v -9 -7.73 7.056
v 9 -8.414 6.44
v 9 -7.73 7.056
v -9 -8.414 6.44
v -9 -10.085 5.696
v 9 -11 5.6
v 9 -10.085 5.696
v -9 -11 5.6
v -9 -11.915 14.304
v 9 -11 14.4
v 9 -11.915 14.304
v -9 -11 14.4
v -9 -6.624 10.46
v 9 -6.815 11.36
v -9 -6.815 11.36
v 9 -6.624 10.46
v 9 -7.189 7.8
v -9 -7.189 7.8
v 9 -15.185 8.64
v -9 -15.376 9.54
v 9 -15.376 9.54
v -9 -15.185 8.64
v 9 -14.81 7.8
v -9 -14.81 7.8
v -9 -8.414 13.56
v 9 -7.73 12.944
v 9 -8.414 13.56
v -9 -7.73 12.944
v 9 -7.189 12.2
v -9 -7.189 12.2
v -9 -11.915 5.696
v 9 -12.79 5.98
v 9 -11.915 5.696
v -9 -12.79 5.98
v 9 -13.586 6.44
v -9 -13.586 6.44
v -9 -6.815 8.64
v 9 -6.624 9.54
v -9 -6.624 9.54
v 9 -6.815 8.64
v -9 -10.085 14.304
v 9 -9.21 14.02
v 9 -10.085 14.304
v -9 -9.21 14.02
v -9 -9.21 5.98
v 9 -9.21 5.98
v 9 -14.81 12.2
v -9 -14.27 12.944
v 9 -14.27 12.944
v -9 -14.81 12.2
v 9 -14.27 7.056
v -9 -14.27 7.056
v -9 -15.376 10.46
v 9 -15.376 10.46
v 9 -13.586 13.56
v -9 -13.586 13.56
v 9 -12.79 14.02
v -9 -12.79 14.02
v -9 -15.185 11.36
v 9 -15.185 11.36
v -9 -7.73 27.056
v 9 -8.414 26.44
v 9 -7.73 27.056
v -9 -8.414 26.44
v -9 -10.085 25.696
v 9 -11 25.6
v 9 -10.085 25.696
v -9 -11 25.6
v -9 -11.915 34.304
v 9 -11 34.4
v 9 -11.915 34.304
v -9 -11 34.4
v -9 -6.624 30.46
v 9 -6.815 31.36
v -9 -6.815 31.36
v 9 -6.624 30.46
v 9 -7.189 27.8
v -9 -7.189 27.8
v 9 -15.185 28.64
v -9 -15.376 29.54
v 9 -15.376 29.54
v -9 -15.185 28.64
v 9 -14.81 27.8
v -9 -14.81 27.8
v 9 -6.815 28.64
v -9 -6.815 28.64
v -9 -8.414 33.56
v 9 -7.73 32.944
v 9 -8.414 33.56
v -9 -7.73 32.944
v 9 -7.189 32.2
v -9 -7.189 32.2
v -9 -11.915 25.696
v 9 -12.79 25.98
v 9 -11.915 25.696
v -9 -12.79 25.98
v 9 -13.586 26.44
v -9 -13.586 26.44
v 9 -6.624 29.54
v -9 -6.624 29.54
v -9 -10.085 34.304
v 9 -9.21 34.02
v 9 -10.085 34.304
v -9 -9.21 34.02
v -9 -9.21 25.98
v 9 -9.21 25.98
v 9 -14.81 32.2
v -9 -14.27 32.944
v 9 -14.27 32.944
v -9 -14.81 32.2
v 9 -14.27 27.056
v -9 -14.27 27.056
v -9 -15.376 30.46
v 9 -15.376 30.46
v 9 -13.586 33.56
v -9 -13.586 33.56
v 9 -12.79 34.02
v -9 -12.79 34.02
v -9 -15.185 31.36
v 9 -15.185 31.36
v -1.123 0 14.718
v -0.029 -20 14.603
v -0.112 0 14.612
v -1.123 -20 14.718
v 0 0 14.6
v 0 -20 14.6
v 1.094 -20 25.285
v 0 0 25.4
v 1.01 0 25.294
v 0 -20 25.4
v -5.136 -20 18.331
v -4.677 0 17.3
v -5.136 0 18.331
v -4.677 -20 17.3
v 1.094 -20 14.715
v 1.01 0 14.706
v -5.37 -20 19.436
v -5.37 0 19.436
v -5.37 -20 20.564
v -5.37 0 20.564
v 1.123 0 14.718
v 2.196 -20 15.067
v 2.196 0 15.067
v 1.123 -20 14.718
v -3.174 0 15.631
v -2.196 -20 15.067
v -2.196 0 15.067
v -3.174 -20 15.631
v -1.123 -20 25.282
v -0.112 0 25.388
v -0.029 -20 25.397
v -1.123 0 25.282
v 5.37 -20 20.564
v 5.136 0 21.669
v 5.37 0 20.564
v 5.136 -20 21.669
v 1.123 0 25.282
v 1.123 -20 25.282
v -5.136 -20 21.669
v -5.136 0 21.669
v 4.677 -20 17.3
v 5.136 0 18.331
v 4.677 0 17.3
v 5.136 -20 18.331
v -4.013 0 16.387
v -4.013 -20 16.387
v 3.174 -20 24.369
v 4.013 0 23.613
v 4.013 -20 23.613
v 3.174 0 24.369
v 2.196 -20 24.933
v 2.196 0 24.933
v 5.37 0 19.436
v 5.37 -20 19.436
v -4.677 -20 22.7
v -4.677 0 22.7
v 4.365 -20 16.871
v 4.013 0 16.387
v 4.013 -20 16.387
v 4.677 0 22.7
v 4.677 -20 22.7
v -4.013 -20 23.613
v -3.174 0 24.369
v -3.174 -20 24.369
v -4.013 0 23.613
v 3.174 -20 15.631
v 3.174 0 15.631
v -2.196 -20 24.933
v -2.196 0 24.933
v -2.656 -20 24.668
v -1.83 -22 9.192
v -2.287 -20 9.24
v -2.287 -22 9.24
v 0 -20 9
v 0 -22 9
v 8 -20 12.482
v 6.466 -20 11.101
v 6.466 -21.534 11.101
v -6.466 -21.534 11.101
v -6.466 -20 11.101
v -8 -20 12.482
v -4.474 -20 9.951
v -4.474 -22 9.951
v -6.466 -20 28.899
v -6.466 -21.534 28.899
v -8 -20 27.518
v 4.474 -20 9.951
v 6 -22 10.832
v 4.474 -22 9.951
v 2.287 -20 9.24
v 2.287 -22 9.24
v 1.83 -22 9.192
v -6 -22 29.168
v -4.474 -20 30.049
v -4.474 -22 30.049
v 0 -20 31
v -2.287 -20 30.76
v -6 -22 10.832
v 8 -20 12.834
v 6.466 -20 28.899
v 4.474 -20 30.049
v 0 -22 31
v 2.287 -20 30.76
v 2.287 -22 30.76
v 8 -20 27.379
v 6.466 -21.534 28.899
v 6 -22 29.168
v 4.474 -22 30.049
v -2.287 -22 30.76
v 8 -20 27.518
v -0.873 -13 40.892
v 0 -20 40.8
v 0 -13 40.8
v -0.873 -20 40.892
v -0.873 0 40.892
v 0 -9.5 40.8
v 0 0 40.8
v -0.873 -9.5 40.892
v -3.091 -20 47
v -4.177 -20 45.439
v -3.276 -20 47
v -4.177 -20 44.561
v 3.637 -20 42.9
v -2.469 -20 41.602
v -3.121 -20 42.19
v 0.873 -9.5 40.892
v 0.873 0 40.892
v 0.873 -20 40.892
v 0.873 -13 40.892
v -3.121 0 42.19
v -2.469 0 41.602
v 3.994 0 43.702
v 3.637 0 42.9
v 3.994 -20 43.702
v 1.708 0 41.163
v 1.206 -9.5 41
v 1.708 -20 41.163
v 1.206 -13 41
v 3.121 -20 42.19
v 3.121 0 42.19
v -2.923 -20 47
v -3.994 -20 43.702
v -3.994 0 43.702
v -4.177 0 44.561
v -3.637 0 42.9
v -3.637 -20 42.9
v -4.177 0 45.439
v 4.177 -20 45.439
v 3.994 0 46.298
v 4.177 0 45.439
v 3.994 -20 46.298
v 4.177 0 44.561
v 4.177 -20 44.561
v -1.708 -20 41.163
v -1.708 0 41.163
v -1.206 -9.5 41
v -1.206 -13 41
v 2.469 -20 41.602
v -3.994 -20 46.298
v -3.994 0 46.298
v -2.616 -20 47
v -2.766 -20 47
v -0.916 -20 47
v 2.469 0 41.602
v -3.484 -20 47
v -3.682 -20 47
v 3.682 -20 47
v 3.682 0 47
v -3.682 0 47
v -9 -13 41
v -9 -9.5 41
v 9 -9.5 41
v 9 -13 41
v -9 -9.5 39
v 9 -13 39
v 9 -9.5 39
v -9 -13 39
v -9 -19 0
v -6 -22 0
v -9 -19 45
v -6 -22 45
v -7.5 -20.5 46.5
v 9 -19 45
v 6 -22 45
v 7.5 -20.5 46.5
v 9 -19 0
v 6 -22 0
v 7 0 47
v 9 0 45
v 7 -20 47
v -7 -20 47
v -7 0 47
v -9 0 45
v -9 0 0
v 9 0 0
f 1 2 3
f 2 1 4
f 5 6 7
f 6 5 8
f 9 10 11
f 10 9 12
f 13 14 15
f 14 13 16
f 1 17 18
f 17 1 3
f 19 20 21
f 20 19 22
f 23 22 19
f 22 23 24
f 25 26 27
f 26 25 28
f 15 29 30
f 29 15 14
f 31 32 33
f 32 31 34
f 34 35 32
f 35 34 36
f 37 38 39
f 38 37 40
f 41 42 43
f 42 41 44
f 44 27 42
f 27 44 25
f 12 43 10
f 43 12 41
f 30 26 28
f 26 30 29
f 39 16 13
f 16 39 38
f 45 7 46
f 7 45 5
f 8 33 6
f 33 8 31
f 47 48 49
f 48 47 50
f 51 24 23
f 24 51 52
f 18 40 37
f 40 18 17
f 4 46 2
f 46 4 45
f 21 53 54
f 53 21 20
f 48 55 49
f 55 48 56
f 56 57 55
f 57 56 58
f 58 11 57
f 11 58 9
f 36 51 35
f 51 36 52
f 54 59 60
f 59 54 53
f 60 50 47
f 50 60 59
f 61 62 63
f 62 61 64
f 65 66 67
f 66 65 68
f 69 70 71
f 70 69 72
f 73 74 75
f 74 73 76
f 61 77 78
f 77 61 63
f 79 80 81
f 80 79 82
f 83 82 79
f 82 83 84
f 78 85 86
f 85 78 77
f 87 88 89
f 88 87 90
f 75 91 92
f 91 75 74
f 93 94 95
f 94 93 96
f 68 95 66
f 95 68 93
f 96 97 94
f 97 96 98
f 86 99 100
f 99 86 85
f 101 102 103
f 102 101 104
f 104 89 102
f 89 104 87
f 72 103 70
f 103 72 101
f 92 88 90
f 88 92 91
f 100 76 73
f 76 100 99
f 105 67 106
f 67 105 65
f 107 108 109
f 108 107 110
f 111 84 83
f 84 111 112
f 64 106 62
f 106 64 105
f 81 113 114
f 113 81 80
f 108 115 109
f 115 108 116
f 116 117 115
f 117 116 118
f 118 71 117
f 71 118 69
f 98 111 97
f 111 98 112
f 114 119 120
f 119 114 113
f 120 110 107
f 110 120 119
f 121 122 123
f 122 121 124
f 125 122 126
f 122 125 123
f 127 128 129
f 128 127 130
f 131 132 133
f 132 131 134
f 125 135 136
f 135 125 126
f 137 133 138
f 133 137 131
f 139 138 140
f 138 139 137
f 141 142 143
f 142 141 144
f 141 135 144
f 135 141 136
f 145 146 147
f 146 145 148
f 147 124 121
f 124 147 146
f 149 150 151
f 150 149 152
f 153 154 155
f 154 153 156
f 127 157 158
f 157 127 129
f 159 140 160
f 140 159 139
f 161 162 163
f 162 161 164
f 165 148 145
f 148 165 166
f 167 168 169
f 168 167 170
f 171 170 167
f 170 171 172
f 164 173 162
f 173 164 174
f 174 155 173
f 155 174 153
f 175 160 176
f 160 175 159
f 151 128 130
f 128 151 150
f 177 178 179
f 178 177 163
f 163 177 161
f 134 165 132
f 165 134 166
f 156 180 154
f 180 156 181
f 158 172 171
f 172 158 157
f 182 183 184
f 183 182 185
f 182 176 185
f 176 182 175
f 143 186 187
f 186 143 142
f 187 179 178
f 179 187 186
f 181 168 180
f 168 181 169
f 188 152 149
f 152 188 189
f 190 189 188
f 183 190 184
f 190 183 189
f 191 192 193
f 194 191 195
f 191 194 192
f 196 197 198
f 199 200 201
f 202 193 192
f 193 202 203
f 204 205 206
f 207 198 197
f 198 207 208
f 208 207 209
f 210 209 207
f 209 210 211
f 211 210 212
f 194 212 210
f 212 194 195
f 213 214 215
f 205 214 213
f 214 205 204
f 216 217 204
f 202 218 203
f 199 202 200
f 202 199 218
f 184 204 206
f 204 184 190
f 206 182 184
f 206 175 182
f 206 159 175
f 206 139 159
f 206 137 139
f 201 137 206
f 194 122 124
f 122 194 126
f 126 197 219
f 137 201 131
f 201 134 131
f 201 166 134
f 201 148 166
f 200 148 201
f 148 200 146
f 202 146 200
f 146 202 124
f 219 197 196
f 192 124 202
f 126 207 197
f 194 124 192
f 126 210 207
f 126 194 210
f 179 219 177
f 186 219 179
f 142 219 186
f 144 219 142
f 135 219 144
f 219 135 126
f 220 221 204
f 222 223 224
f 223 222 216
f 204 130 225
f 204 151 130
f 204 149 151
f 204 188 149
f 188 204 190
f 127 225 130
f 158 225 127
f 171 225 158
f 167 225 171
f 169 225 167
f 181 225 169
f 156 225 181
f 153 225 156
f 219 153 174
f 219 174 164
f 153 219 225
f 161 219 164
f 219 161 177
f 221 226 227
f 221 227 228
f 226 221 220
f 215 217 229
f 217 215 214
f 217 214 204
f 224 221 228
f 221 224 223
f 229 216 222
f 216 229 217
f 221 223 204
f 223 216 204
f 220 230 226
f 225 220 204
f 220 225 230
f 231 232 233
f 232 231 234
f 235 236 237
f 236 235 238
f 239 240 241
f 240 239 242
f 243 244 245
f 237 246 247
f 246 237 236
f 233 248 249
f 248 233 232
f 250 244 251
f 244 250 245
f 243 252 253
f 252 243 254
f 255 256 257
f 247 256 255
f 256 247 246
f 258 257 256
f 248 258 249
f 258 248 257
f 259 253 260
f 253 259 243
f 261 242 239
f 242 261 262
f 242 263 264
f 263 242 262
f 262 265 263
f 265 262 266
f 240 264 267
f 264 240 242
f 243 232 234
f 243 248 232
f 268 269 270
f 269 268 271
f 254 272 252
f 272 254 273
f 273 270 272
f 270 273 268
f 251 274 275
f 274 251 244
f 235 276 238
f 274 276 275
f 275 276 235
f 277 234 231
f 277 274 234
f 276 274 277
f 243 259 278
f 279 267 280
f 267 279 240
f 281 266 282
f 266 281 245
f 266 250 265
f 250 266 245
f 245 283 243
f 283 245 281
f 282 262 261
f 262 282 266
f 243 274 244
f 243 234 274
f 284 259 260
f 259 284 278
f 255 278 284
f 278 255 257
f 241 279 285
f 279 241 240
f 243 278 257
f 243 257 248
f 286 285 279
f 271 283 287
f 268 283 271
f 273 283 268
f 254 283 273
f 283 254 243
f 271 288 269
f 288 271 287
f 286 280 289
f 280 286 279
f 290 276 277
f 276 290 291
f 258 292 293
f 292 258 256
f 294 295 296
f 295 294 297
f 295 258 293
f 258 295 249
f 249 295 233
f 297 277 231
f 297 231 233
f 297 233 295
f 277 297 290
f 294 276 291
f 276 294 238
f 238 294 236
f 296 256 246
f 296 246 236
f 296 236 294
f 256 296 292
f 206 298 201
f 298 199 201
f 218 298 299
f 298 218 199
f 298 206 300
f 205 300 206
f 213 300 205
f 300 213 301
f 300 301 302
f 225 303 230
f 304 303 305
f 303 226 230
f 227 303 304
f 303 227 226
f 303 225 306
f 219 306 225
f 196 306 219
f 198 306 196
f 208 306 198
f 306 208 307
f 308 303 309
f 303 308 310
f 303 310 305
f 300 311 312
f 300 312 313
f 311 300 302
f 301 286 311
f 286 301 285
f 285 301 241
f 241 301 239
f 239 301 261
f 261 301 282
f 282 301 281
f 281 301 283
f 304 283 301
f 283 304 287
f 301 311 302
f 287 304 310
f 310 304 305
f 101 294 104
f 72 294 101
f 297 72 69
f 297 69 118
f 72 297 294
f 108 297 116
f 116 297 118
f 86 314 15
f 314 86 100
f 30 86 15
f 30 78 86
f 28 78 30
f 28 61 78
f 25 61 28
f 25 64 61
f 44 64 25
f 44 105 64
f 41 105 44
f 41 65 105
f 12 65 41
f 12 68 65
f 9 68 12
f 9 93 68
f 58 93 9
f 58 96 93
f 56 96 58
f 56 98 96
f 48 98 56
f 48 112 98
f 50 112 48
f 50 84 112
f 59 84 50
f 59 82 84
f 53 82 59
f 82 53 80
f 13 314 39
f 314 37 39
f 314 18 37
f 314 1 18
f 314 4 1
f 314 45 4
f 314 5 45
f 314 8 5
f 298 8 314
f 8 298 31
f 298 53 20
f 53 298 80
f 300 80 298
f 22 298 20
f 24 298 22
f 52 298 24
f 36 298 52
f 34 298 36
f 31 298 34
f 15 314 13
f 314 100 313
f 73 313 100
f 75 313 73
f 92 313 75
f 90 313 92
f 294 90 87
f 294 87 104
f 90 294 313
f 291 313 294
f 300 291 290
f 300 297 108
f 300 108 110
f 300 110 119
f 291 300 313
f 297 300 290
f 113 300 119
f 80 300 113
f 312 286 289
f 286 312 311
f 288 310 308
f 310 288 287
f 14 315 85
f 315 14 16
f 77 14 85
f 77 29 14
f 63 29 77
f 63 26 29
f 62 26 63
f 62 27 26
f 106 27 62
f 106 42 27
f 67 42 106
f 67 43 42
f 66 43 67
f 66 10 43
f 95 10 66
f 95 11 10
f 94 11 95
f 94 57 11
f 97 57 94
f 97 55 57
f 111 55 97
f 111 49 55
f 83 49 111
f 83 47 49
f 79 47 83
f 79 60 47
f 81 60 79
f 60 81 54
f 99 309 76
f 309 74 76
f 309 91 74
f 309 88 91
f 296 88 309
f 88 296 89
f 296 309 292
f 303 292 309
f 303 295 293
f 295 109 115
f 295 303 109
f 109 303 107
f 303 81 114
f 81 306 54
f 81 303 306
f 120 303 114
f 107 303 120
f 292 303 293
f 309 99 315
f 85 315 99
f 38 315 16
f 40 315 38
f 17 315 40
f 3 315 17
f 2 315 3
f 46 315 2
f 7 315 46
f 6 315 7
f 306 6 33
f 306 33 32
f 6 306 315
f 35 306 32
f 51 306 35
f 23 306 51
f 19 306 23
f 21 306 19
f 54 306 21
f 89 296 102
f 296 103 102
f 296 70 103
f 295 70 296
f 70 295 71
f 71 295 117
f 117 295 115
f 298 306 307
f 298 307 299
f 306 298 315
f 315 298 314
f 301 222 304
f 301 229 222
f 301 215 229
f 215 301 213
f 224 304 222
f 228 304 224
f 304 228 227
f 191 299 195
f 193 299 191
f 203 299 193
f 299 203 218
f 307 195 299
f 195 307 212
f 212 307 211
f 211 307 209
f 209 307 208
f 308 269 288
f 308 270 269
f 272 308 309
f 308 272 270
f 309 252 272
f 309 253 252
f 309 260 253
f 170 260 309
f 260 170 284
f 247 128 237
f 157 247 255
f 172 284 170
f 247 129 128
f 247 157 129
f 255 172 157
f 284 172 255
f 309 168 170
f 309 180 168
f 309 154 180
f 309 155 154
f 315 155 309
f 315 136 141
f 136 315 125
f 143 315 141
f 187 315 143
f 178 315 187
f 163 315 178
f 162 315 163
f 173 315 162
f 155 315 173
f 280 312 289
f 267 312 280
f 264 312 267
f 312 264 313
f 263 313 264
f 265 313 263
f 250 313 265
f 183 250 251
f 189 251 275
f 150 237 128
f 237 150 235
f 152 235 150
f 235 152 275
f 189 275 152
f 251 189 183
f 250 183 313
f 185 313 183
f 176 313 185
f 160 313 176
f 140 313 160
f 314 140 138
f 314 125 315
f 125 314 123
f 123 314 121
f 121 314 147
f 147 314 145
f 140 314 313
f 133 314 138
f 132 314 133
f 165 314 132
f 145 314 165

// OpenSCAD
// PRUSA iteration3
// Y frame corners
// GNU GPL v3
// Josef Průša <iam@josefprusa.cz> and contributors
// http://www.reprap.org/wiki/Prusa_Mendel
// http://prusamendel.org


module corner_base(){	
 translate([-9,-11,0])cube([18,22,47]);
}

module corner_holes(){
 translate([-11,-11,0]){
  // Bottom hole
  translate([0,11,10]) rotate([0,90,0]) translate([0,0,-5]) cylinder(h = 270, r=4.4, $fn=30);
  // Top hole
  translate([0,11,30]) rotate([0,90,0]) translate([0,0,-5]) cylinder(h = 270, r=4.4, $fn=30);
  // Middle hole
  translate([11,0,20]) rotate([0,0,90]) rotate([0,90,0]) translate([0,0,-5]) cylinder(h = 270, r=5.4, $fn=30);

  // Washer hole
  translate([11,-3,20]) rotate([0,0,90]) rotate([0,90,0]) translate([0,0,-5]) cylinder(h = 10, r=11, $fn=30);

  // Top smooth rod insert
  // Smooth rod place
  translate([11,2,45]) rotate([0,90,90]) cylinder(h = 270, r=4.2, $fn=30); 
  // Ziptie
  translate([-5,9,39])  cube([30,3.5,2]);
 }
}

module corner_fancy(){
 // Side corner cutouts
  translate([-8,-9,0]) rotate([0,0,-45-180]) translate([-15,0,-1]) cube([30,30,51]);
  translate([8,-9,0]) rotate([0,0,45-180]) translate([-15,0,-1]) cube([30,30,51]);
 // Top corner cutouts
  translate([7,0,49-2]) rotate([0,45,0]) translate([-15,-15,0]) cube([30,30,30]);
  translate([-7,0,49-2]) rotate([0,-45,0]) translate([-15,-15,0]) cube([30,30,30]);
  rotate([0,0,90]){
   translate([-9,0,49-2]) rotate([0,-45,0]) translate([-15,-15,0]) cube([30,30,30]);
  }
}


// Final part
module corner(){
 // Rotate the part for better printing
 translate([0,0,11]) rotate([-90,0,0]) difference(){
  corner_base();
  corner_holes();
  corner_fancy();
 }
}

rotate([90,0,0]) corner();
